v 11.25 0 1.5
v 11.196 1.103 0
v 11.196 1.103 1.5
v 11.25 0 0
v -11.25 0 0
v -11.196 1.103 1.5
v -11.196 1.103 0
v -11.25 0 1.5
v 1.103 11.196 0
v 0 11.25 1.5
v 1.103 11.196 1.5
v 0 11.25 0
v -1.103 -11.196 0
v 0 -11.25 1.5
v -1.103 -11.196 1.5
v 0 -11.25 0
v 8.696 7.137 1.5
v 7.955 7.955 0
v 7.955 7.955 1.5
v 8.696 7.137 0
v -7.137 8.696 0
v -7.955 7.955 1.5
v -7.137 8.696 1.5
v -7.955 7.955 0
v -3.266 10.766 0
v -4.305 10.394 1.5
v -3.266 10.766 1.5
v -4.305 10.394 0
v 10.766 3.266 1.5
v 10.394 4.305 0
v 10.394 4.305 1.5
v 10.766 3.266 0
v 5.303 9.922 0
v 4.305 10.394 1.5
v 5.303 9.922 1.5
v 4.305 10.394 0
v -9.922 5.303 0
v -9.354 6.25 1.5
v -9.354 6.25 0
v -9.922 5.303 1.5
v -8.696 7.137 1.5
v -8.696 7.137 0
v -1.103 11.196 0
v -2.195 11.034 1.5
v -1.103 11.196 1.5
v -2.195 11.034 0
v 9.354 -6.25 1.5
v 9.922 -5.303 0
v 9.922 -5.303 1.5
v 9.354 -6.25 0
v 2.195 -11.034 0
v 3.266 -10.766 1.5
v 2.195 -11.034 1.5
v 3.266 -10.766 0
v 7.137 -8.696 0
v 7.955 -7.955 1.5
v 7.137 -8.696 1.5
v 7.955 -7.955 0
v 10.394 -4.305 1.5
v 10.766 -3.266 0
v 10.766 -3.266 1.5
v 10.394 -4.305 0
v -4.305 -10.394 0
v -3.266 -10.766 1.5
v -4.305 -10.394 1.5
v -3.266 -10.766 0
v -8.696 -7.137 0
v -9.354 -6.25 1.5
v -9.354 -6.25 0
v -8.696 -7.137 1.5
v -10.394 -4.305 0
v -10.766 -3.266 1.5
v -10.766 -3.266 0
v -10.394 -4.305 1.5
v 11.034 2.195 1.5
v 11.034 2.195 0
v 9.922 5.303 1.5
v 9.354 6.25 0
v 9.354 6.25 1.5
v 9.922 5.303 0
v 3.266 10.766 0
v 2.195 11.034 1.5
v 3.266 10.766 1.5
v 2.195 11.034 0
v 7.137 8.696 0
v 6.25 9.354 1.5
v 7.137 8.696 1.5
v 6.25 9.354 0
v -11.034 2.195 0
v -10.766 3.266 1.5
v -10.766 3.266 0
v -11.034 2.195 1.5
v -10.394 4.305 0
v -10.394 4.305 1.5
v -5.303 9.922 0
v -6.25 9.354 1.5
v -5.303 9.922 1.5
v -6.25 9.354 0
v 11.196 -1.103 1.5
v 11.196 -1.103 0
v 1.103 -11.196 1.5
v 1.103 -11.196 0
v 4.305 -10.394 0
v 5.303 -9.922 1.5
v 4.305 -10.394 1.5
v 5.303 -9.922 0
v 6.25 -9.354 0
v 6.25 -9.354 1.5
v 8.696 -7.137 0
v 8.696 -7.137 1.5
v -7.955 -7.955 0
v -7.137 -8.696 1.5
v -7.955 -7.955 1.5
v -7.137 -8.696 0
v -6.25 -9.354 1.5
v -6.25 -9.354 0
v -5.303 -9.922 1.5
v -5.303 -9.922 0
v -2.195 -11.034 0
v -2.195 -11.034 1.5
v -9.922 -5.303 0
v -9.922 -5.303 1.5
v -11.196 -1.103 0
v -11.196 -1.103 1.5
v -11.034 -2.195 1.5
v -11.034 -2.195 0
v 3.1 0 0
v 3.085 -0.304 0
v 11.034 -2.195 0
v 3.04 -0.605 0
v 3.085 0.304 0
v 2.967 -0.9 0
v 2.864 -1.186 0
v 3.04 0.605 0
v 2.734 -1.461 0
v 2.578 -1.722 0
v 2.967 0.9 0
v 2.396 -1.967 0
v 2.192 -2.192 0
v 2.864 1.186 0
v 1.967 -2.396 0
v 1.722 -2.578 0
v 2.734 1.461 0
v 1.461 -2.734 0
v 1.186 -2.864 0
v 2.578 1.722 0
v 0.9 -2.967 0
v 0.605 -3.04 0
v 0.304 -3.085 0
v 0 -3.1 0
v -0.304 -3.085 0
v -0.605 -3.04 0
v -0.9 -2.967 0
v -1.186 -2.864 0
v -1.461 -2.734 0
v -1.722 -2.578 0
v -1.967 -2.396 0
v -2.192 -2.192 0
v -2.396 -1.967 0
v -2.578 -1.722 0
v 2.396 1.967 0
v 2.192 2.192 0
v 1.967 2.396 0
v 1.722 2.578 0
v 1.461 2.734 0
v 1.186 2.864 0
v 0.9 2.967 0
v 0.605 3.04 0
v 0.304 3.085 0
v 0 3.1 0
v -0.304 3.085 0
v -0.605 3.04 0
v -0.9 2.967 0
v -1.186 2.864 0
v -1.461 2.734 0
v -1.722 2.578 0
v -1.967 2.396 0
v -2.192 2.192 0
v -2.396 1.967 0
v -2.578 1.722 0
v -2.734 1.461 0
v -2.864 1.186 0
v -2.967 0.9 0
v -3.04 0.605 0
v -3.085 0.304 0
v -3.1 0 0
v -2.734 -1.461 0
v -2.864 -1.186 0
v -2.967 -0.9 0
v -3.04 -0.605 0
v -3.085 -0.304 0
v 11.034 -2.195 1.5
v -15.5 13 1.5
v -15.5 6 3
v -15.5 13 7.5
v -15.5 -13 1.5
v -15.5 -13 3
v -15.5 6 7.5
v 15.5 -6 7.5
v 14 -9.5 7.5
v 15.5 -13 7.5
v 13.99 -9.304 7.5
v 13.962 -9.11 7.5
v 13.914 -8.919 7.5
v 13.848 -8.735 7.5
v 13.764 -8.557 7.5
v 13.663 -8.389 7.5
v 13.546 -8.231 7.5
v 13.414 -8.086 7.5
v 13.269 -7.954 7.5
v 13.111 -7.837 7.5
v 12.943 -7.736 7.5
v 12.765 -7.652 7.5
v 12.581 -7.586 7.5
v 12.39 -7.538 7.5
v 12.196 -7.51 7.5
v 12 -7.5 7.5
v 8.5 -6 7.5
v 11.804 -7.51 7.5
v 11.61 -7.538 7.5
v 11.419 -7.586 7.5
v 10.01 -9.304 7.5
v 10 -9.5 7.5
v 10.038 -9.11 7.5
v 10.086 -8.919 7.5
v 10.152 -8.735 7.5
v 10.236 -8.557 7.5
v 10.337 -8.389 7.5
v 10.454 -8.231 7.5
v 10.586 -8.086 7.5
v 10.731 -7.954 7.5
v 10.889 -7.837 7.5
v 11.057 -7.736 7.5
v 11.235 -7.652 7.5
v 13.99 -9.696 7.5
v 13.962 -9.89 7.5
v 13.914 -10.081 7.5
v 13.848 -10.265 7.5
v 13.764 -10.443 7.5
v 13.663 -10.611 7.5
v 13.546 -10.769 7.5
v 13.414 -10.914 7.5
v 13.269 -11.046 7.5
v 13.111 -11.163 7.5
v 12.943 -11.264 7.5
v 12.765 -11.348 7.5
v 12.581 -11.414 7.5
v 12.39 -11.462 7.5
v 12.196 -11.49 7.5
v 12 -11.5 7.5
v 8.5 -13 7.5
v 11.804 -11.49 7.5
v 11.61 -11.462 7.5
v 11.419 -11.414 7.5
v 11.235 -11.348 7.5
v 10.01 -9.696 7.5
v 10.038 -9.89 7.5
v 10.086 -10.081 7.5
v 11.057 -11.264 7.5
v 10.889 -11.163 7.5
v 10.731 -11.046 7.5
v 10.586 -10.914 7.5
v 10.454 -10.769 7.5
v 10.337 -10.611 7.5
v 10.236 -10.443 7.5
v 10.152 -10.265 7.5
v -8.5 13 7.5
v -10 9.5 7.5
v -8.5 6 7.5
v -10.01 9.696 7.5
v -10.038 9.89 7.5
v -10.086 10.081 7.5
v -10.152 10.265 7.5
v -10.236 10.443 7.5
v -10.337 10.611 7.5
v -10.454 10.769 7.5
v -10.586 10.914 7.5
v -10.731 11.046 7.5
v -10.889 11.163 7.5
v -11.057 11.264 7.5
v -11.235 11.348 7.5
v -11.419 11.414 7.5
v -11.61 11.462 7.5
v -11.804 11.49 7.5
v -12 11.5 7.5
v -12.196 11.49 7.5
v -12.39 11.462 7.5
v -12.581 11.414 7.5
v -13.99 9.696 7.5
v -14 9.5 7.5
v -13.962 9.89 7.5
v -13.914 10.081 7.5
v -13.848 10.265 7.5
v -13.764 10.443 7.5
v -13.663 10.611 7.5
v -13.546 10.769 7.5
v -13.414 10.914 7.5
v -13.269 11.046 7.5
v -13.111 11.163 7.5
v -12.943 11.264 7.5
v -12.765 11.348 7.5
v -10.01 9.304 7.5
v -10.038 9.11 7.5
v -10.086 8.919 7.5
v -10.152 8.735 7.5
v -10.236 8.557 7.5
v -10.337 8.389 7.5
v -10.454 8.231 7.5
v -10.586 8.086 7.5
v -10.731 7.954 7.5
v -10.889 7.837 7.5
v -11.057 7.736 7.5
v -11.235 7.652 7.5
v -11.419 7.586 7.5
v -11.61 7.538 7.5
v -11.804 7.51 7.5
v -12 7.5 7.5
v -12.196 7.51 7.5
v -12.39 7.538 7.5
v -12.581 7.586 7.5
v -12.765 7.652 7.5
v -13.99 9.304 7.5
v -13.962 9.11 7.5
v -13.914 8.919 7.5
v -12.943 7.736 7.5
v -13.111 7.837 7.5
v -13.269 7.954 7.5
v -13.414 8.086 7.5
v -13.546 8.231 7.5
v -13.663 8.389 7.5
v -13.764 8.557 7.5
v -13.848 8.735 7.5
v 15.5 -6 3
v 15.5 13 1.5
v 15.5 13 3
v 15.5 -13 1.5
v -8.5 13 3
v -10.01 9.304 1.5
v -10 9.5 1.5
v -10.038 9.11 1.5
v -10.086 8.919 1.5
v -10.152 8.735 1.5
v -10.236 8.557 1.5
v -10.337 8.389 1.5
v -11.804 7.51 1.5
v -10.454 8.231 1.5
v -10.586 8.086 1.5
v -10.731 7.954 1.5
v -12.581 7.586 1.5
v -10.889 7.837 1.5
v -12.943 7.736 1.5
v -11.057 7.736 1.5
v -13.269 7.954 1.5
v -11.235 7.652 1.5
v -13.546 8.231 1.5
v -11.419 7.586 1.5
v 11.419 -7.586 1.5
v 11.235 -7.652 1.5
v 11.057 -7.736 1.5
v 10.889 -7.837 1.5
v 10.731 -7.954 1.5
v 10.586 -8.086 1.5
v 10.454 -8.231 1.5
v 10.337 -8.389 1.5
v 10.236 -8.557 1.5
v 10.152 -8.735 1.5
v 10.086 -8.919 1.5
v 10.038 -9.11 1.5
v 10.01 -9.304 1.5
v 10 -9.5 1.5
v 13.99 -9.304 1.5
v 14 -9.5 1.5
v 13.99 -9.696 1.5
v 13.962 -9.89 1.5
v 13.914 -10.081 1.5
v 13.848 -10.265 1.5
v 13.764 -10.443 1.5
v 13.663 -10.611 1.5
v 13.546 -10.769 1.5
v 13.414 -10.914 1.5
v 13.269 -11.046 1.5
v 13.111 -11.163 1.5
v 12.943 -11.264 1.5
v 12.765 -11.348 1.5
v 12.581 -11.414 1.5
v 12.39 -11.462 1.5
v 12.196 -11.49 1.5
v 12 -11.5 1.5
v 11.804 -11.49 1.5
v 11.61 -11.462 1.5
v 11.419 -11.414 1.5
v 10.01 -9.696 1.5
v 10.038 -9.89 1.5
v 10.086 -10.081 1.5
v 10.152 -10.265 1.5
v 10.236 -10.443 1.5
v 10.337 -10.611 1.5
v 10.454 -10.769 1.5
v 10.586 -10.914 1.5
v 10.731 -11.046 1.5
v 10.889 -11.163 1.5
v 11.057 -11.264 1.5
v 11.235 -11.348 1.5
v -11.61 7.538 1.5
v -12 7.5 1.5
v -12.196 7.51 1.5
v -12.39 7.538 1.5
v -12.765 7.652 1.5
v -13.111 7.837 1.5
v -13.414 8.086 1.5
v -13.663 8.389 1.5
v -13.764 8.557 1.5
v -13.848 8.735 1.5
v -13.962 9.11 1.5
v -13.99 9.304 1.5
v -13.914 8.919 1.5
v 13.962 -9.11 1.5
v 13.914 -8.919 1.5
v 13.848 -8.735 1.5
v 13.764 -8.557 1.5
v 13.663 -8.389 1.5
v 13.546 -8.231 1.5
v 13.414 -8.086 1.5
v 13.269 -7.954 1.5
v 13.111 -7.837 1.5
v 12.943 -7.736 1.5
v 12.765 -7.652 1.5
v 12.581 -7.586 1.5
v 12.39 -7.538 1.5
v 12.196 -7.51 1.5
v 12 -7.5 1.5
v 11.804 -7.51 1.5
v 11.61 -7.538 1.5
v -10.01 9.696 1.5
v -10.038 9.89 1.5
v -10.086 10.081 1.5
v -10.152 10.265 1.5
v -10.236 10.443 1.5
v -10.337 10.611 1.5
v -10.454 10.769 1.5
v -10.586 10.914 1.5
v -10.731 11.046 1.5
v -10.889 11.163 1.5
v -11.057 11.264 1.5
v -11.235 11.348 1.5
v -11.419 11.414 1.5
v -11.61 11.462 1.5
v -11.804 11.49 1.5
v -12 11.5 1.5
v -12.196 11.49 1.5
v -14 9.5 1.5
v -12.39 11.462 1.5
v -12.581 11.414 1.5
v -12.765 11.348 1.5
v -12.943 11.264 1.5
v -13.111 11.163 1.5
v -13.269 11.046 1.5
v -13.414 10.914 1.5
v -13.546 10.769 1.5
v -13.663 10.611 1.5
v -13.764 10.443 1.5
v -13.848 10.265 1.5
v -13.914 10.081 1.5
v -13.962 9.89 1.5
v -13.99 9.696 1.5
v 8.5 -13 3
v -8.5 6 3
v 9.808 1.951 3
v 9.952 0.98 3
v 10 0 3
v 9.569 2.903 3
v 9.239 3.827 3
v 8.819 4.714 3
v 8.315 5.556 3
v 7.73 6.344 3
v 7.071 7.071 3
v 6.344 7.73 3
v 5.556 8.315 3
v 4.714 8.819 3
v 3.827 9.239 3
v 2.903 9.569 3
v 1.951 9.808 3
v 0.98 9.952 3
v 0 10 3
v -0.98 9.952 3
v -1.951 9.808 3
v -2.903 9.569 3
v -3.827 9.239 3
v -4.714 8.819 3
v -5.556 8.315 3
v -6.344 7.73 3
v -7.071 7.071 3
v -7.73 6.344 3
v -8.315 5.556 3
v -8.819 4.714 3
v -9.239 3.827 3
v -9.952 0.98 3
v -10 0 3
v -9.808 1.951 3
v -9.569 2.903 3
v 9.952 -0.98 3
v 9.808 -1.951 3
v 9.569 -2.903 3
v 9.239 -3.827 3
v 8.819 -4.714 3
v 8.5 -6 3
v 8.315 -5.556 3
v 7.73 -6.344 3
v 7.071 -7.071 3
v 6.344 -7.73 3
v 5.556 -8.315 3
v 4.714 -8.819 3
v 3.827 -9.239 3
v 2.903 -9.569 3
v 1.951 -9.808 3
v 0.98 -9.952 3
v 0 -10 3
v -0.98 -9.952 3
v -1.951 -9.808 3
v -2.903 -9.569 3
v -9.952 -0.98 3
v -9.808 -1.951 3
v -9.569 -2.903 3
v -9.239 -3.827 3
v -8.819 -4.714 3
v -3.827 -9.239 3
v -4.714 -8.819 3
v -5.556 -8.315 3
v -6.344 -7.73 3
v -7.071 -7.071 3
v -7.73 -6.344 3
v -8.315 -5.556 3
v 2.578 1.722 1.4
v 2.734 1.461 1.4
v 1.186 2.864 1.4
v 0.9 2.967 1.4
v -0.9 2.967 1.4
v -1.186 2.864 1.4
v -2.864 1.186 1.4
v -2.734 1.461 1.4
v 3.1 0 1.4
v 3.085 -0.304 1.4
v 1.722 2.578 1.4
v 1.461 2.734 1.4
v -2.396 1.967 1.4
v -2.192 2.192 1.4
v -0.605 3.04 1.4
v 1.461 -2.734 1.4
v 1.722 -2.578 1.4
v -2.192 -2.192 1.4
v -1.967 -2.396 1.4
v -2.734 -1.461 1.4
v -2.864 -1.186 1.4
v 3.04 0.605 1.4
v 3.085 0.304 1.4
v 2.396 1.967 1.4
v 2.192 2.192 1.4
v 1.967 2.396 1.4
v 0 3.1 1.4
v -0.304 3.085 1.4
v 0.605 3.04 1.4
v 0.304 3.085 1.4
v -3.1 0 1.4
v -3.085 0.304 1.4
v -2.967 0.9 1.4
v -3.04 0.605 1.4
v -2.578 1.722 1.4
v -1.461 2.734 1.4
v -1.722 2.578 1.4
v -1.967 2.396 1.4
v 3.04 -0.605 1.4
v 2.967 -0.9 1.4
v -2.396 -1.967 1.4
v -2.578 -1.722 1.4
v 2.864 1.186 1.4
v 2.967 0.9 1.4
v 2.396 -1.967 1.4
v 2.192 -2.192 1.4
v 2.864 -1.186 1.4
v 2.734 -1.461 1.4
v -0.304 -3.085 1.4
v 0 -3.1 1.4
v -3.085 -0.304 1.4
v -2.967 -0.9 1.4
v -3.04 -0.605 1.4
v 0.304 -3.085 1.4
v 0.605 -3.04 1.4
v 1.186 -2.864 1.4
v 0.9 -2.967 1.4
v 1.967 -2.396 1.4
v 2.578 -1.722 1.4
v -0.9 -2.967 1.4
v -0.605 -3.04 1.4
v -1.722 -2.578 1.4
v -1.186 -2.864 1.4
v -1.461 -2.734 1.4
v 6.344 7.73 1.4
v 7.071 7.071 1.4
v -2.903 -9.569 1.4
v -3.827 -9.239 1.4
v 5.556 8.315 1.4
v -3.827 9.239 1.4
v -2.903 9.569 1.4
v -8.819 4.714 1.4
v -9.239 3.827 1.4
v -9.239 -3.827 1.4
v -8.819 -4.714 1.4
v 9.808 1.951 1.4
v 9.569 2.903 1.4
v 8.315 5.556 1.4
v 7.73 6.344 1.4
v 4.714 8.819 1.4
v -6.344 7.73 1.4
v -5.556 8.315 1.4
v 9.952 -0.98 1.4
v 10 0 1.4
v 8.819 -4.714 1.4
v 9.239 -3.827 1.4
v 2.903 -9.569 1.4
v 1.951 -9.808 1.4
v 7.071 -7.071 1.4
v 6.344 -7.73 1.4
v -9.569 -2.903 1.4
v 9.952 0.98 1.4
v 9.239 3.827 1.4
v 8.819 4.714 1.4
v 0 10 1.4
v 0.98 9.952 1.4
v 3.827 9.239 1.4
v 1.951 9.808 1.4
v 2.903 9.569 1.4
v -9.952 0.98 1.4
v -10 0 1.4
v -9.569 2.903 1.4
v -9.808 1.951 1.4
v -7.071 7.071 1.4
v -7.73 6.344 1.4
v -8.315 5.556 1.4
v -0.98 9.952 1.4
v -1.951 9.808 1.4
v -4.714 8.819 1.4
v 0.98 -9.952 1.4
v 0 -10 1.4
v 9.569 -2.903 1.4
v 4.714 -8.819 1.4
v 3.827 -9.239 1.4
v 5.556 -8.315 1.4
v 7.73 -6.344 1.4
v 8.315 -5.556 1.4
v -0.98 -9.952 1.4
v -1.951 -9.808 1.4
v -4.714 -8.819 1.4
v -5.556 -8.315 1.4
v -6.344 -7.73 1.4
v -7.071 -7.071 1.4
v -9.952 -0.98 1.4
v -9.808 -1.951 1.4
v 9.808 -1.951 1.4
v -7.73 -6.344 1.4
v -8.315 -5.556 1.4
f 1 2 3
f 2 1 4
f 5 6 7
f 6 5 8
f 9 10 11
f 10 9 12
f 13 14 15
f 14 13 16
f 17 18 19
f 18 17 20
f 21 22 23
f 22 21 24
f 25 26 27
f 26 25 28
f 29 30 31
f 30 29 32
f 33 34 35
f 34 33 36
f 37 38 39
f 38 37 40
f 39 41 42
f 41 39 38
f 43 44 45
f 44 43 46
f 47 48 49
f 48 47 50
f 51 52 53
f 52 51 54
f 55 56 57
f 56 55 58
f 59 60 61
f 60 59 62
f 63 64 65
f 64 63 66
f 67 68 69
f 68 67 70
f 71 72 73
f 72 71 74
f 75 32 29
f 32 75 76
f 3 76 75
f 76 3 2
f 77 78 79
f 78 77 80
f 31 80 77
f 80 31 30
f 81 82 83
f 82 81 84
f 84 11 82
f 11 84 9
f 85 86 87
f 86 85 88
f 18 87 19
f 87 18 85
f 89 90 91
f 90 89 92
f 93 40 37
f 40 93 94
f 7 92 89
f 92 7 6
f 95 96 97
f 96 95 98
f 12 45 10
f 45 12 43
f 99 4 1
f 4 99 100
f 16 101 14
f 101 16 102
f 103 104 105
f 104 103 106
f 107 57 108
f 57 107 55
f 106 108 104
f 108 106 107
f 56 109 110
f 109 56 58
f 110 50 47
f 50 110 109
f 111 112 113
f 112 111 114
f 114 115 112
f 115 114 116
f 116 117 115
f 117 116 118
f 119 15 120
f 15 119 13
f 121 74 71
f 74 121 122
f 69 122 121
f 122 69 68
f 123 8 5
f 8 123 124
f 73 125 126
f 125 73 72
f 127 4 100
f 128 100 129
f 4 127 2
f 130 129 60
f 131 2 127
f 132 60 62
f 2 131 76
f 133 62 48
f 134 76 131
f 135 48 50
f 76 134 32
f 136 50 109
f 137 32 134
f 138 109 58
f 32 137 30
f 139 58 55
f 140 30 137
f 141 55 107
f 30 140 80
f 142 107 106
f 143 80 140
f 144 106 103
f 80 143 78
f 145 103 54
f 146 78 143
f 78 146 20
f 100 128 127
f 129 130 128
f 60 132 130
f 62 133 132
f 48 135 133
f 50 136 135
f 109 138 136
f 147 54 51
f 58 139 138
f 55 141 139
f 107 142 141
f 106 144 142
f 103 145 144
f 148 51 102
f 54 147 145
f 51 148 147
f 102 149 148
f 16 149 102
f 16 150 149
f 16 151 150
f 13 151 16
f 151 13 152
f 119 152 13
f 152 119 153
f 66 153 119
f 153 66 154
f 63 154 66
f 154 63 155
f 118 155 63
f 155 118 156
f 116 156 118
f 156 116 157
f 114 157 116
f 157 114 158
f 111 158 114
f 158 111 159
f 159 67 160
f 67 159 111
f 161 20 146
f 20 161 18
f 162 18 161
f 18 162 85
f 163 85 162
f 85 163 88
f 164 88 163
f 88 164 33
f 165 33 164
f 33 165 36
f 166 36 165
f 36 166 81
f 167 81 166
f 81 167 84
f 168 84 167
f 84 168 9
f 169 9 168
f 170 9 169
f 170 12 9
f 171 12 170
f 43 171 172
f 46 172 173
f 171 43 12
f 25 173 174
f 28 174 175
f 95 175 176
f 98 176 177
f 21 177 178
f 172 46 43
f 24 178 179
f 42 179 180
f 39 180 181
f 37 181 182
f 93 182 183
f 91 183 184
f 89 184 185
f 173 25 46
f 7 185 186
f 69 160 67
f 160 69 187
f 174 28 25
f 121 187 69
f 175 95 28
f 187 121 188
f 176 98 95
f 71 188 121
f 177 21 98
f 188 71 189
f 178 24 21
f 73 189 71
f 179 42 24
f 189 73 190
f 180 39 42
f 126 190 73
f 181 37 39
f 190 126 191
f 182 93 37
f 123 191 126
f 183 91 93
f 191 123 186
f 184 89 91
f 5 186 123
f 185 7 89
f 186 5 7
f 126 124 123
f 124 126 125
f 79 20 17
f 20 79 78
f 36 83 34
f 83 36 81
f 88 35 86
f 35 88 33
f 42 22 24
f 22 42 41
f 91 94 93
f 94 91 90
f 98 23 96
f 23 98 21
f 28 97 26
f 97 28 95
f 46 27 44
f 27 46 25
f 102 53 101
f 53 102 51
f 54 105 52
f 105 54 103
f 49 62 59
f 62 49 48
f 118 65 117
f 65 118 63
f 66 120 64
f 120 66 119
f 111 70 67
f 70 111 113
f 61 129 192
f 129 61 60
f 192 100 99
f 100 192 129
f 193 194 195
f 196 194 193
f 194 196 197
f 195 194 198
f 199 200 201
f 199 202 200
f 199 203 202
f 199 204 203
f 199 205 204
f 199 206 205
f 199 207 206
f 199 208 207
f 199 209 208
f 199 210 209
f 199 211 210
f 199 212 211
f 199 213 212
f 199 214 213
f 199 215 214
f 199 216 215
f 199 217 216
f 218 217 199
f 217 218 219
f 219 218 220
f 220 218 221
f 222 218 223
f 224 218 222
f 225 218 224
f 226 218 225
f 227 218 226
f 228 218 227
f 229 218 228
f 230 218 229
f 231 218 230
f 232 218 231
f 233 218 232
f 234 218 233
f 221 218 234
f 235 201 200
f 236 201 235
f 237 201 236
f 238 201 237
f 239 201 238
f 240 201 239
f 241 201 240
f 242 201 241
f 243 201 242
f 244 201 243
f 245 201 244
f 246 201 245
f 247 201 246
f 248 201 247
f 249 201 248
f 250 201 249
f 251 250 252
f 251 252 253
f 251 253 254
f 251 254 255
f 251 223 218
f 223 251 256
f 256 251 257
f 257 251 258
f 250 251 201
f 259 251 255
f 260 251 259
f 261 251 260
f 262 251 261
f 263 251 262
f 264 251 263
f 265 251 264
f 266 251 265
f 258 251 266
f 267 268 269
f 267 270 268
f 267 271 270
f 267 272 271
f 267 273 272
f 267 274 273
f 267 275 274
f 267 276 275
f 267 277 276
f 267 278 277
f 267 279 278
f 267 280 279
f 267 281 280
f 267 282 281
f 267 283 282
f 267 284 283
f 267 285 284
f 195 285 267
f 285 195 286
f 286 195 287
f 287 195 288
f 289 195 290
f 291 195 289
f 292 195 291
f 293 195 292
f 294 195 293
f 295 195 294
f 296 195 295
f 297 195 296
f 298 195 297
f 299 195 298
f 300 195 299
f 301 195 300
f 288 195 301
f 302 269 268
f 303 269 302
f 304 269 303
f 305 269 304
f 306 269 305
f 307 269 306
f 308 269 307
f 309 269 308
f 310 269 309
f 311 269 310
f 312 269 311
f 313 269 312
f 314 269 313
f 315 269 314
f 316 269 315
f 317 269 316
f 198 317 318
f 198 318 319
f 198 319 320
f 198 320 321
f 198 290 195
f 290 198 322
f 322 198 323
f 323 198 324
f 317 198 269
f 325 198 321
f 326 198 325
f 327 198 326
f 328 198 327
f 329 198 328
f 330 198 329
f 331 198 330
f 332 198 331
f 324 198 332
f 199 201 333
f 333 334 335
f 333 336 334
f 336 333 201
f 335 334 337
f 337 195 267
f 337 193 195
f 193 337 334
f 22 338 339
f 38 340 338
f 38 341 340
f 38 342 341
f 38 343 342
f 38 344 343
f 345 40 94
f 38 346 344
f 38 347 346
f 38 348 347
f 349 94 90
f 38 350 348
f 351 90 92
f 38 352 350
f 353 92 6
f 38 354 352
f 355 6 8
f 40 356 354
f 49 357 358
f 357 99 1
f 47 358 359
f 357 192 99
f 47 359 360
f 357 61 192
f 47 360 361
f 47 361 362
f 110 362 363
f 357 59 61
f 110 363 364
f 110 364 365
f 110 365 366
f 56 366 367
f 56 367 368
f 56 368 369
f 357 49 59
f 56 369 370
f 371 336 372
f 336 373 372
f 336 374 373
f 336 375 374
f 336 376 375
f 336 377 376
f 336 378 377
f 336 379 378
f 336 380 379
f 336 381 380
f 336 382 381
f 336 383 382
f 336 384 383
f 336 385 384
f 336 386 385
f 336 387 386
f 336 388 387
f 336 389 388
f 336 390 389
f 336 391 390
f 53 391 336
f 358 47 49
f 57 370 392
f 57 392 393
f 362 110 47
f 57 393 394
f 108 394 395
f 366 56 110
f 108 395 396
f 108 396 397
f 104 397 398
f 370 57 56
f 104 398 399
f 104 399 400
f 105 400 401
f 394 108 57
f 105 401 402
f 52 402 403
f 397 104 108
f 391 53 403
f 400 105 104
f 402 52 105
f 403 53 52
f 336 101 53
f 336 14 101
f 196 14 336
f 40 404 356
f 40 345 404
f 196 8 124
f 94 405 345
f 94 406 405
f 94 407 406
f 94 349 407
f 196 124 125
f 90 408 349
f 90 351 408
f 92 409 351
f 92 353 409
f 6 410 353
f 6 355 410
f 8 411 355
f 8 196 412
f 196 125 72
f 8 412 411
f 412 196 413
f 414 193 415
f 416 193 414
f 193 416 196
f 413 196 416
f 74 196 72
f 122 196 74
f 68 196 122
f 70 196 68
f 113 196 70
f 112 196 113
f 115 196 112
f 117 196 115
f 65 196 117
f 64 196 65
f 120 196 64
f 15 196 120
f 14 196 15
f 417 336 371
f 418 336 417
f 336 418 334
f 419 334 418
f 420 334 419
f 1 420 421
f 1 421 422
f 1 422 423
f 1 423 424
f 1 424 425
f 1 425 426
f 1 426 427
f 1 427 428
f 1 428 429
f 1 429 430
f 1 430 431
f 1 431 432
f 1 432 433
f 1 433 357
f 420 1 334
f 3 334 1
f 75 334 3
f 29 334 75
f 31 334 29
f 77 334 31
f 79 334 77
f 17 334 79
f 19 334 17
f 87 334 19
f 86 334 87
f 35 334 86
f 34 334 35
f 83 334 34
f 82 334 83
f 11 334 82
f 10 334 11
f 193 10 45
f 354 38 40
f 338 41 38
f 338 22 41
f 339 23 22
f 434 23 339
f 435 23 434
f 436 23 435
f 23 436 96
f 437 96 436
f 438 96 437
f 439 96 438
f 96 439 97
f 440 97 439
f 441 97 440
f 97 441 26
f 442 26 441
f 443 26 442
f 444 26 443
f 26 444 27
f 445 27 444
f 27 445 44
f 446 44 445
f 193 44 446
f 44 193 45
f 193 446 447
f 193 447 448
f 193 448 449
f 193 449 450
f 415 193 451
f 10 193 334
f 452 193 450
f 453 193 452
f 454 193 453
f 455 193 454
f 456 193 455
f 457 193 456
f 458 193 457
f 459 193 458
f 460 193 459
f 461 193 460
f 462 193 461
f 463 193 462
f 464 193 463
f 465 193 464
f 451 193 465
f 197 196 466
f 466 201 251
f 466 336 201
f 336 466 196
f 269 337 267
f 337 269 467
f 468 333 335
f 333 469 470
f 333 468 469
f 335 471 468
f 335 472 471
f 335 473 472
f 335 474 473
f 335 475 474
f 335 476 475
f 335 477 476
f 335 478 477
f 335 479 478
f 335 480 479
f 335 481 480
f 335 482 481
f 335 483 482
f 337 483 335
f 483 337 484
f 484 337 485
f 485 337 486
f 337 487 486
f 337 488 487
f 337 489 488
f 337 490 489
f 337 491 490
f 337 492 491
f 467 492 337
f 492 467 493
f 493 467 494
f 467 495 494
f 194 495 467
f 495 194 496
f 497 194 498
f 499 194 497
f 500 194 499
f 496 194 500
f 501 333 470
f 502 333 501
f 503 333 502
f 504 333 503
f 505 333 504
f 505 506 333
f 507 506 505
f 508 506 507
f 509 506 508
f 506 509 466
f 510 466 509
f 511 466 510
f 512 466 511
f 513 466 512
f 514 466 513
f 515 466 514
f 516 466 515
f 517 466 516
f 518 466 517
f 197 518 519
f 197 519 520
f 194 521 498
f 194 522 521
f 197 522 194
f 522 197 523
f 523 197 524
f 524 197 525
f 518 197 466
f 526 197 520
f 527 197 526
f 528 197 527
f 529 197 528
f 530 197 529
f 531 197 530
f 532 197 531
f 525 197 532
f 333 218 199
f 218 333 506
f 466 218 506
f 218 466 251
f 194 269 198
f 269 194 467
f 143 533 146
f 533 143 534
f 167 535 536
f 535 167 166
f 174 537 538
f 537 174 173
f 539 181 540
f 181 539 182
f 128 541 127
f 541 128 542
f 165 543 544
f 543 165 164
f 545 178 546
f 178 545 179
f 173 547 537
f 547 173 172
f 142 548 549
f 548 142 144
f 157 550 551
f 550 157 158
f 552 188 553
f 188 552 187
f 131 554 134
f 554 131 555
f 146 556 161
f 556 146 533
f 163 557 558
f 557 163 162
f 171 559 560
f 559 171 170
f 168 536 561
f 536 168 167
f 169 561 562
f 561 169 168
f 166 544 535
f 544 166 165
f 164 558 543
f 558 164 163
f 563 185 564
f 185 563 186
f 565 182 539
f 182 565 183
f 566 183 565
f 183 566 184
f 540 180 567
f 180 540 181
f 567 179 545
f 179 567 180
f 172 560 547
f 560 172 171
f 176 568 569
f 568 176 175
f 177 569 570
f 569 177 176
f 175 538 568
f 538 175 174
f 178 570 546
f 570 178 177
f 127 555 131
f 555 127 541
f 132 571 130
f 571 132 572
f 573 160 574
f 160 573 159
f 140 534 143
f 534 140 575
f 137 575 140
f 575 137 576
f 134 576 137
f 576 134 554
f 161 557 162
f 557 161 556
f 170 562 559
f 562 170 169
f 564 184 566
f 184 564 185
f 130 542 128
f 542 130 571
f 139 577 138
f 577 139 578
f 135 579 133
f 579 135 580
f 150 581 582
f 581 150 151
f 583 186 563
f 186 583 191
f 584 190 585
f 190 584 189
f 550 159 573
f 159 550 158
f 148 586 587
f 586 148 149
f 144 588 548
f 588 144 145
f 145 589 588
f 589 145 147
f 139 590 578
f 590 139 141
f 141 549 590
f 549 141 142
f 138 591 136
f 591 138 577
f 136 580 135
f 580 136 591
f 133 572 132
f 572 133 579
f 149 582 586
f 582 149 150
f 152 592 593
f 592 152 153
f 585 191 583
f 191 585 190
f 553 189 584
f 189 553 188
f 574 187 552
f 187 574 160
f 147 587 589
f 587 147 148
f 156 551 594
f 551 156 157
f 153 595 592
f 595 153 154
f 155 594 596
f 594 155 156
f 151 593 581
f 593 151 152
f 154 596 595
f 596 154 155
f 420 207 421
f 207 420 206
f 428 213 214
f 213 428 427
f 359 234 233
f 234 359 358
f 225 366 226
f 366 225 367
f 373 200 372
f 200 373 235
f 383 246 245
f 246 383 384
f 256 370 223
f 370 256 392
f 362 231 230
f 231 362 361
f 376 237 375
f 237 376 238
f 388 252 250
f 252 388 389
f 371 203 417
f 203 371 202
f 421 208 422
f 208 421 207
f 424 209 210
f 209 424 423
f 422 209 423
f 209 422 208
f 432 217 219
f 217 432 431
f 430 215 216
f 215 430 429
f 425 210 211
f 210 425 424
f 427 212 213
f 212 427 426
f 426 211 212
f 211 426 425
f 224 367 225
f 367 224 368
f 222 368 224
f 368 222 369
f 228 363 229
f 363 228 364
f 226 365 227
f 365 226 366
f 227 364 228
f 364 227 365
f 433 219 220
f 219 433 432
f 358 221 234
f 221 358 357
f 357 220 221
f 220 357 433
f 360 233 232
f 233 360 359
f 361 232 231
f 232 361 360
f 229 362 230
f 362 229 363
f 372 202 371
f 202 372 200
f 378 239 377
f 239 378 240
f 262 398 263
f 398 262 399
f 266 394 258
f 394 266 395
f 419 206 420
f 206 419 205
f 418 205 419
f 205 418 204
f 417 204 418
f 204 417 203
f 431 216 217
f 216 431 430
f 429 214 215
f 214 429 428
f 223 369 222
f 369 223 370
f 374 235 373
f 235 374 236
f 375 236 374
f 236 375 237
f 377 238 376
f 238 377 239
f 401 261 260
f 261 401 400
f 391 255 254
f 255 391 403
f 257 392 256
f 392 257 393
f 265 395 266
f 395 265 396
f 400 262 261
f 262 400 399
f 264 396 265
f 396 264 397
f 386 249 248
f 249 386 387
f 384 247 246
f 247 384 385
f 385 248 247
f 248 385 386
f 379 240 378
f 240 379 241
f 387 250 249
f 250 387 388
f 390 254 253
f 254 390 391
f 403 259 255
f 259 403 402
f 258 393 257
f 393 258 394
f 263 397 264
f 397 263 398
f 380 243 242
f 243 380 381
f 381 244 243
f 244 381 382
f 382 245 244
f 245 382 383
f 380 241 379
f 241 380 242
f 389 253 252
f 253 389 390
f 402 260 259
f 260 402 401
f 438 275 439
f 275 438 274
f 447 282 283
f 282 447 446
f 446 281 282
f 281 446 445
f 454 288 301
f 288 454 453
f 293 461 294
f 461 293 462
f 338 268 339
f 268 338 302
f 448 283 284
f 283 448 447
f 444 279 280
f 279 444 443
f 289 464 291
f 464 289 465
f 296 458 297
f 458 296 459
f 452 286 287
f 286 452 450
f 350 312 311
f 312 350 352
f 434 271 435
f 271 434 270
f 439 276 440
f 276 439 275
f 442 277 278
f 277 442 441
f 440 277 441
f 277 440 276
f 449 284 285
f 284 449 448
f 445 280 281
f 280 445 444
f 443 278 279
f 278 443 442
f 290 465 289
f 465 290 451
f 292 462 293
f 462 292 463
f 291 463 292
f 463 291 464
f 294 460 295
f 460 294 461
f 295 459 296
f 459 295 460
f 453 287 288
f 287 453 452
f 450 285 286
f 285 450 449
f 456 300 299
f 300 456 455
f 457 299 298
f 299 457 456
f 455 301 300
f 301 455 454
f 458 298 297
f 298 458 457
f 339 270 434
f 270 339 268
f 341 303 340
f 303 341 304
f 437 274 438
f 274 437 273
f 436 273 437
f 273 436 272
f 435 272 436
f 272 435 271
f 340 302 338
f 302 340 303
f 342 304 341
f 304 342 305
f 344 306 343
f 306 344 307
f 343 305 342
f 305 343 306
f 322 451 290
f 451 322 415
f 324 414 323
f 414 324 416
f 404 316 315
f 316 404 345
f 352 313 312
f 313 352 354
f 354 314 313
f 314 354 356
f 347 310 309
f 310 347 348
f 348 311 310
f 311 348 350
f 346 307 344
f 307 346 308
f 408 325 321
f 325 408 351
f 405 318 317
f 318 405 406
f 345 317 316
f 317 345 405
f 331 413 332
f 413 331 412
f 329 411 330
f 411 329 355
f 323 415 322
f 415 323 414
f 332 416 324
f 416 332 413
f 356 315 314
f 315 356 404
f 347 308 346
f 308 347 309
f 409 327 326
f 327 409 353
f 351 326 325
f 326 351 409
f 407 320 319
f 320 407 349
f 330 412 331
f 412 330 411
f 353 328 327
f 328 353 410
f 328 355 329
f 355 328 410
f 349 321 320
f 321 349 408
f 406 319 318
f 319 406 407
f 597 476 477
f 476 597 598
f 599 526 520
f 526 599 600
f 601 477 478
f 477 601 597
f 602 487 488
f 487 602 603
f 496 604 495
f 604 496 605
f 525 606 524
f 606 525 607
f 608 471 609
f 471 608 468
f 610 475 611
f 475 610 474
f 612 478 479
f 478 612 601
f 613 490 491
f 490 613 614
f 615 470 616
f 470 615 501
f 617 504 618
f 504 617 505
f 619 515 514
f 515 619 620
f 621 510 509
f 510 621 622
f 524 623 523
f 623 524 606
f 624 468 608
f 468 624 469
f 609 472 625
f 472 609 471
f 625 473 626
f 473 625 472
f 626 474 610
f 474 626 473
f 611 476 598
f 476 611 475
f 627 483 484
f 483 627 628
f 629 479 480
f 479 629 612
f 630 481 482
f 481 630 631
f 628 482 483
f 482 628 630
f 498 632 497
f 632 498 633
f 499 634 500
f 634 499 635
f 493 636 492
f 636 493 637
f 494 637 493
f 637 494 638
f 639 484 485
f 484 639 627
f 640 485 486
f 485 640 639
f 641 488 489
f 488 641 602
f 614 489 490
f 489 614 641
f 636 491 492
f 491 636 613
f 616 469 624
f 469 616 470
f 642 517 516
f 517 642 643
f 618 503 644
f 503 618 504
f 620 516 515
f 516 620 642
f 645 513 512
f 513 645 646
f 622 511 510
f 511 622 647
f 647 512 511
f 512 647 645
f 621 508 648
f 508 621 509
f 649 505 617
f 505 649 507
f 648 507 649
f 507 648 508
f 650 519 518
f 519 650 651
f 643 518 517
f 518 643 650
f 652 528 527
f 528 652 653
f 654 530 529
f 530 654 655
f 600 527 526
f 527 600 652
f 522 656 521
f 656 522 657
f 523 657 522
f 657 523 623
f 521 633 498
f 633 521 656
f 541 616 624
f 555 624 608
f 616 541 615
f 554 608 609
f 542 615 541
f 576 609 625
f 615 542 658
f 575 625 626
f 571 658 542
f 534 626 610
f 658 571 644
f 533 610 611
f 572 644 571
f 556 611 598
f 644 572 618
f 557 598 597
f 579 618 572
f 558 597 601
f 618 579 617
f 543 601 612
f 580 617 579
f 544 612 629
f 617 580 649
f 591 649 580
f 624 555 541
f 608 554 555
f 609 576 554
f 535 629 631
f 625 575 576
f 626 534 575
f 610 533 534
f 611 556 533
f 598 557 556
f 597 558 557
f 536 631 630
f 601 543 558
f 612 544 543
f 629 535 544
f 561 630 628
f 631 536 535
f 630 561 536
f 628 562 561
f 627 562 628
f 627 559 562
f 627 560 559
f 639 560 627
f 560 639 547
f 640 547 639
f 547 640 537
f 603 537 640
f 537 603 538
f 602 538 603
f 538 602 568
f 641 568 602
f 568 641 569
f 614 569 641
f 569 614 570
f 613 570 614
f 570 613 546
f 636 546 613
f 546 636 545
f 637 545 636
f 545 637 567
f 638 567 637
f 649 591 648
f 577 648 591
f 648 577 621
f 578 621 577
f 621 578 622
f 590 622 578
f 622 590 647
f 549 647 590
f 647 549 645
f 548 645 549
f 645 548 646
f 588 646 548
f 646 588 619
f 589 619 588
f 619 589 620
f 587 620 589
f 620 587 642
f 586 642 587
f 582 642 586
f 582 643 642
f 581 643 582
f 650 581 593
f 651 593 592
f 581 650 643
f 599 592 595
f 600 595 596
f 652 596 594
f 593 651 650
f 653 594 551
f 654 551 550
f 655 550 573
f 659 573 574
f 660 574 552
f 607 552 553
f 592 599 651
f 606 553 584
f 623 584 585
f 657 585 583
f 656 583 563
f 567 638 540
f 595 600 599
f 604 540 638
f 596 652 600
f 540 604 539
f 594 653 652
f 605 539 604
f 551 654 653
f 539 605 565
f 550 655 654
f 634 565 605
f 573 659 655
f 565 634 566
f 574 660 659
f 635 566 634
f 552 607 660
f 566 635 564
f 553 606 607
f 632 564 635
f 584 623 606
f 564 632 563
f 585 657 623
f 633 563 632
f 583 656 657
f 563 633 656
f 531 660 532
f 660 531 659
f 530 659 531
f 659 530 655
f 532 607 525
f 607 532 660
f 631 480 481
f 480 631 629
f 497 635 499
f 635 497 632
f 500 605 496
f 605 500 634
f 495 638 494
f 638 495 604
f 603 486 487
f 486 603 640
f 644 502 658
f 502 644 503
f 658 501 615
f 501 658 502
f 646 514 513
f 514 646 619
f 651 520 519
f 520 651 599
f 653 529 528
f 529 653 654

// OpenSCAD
// Definition size of housing
// **************************

length =140;
width      = 75;    
height      = 10;     
studheight    = 10;

cutoutlength = 110;
cutoutwidth = 52;

flangewidth = 22;
flangeheight = 4;



//Definition of circle angular resolution
resol        = 64;           // Identical to housing !!!



difference () {
    
    union() {

        translate ([0,0,0]) cylinder (h=2, r=11.25, $fn=resol);
        translate ([0,0,4.5]) cube([31,26,6], center=true); //back
    }

    translate ([7,7,7]) cube([31,26,8], center=true); //back
    translate ([-7,-7,7]) cube([31,26,8], center=true); //back
    //translate ([length-20,width/2,-1]) cylinder (h=8+2, r=2.5, $fn=resol);
    translate ([0,0,0]) cylinder (h=2, r=3.1, $fn=resol);
    translate ([12,-9.5,0]) cylinder (h=8, r=2, $fn=resol);
    translate ([-12,9.5,0]) cylinder (h=8, r=2, $fn=resol);
    
    translate ([0,0,1.4]) cylinder (h=8, r=10, $fn=resol);
}
